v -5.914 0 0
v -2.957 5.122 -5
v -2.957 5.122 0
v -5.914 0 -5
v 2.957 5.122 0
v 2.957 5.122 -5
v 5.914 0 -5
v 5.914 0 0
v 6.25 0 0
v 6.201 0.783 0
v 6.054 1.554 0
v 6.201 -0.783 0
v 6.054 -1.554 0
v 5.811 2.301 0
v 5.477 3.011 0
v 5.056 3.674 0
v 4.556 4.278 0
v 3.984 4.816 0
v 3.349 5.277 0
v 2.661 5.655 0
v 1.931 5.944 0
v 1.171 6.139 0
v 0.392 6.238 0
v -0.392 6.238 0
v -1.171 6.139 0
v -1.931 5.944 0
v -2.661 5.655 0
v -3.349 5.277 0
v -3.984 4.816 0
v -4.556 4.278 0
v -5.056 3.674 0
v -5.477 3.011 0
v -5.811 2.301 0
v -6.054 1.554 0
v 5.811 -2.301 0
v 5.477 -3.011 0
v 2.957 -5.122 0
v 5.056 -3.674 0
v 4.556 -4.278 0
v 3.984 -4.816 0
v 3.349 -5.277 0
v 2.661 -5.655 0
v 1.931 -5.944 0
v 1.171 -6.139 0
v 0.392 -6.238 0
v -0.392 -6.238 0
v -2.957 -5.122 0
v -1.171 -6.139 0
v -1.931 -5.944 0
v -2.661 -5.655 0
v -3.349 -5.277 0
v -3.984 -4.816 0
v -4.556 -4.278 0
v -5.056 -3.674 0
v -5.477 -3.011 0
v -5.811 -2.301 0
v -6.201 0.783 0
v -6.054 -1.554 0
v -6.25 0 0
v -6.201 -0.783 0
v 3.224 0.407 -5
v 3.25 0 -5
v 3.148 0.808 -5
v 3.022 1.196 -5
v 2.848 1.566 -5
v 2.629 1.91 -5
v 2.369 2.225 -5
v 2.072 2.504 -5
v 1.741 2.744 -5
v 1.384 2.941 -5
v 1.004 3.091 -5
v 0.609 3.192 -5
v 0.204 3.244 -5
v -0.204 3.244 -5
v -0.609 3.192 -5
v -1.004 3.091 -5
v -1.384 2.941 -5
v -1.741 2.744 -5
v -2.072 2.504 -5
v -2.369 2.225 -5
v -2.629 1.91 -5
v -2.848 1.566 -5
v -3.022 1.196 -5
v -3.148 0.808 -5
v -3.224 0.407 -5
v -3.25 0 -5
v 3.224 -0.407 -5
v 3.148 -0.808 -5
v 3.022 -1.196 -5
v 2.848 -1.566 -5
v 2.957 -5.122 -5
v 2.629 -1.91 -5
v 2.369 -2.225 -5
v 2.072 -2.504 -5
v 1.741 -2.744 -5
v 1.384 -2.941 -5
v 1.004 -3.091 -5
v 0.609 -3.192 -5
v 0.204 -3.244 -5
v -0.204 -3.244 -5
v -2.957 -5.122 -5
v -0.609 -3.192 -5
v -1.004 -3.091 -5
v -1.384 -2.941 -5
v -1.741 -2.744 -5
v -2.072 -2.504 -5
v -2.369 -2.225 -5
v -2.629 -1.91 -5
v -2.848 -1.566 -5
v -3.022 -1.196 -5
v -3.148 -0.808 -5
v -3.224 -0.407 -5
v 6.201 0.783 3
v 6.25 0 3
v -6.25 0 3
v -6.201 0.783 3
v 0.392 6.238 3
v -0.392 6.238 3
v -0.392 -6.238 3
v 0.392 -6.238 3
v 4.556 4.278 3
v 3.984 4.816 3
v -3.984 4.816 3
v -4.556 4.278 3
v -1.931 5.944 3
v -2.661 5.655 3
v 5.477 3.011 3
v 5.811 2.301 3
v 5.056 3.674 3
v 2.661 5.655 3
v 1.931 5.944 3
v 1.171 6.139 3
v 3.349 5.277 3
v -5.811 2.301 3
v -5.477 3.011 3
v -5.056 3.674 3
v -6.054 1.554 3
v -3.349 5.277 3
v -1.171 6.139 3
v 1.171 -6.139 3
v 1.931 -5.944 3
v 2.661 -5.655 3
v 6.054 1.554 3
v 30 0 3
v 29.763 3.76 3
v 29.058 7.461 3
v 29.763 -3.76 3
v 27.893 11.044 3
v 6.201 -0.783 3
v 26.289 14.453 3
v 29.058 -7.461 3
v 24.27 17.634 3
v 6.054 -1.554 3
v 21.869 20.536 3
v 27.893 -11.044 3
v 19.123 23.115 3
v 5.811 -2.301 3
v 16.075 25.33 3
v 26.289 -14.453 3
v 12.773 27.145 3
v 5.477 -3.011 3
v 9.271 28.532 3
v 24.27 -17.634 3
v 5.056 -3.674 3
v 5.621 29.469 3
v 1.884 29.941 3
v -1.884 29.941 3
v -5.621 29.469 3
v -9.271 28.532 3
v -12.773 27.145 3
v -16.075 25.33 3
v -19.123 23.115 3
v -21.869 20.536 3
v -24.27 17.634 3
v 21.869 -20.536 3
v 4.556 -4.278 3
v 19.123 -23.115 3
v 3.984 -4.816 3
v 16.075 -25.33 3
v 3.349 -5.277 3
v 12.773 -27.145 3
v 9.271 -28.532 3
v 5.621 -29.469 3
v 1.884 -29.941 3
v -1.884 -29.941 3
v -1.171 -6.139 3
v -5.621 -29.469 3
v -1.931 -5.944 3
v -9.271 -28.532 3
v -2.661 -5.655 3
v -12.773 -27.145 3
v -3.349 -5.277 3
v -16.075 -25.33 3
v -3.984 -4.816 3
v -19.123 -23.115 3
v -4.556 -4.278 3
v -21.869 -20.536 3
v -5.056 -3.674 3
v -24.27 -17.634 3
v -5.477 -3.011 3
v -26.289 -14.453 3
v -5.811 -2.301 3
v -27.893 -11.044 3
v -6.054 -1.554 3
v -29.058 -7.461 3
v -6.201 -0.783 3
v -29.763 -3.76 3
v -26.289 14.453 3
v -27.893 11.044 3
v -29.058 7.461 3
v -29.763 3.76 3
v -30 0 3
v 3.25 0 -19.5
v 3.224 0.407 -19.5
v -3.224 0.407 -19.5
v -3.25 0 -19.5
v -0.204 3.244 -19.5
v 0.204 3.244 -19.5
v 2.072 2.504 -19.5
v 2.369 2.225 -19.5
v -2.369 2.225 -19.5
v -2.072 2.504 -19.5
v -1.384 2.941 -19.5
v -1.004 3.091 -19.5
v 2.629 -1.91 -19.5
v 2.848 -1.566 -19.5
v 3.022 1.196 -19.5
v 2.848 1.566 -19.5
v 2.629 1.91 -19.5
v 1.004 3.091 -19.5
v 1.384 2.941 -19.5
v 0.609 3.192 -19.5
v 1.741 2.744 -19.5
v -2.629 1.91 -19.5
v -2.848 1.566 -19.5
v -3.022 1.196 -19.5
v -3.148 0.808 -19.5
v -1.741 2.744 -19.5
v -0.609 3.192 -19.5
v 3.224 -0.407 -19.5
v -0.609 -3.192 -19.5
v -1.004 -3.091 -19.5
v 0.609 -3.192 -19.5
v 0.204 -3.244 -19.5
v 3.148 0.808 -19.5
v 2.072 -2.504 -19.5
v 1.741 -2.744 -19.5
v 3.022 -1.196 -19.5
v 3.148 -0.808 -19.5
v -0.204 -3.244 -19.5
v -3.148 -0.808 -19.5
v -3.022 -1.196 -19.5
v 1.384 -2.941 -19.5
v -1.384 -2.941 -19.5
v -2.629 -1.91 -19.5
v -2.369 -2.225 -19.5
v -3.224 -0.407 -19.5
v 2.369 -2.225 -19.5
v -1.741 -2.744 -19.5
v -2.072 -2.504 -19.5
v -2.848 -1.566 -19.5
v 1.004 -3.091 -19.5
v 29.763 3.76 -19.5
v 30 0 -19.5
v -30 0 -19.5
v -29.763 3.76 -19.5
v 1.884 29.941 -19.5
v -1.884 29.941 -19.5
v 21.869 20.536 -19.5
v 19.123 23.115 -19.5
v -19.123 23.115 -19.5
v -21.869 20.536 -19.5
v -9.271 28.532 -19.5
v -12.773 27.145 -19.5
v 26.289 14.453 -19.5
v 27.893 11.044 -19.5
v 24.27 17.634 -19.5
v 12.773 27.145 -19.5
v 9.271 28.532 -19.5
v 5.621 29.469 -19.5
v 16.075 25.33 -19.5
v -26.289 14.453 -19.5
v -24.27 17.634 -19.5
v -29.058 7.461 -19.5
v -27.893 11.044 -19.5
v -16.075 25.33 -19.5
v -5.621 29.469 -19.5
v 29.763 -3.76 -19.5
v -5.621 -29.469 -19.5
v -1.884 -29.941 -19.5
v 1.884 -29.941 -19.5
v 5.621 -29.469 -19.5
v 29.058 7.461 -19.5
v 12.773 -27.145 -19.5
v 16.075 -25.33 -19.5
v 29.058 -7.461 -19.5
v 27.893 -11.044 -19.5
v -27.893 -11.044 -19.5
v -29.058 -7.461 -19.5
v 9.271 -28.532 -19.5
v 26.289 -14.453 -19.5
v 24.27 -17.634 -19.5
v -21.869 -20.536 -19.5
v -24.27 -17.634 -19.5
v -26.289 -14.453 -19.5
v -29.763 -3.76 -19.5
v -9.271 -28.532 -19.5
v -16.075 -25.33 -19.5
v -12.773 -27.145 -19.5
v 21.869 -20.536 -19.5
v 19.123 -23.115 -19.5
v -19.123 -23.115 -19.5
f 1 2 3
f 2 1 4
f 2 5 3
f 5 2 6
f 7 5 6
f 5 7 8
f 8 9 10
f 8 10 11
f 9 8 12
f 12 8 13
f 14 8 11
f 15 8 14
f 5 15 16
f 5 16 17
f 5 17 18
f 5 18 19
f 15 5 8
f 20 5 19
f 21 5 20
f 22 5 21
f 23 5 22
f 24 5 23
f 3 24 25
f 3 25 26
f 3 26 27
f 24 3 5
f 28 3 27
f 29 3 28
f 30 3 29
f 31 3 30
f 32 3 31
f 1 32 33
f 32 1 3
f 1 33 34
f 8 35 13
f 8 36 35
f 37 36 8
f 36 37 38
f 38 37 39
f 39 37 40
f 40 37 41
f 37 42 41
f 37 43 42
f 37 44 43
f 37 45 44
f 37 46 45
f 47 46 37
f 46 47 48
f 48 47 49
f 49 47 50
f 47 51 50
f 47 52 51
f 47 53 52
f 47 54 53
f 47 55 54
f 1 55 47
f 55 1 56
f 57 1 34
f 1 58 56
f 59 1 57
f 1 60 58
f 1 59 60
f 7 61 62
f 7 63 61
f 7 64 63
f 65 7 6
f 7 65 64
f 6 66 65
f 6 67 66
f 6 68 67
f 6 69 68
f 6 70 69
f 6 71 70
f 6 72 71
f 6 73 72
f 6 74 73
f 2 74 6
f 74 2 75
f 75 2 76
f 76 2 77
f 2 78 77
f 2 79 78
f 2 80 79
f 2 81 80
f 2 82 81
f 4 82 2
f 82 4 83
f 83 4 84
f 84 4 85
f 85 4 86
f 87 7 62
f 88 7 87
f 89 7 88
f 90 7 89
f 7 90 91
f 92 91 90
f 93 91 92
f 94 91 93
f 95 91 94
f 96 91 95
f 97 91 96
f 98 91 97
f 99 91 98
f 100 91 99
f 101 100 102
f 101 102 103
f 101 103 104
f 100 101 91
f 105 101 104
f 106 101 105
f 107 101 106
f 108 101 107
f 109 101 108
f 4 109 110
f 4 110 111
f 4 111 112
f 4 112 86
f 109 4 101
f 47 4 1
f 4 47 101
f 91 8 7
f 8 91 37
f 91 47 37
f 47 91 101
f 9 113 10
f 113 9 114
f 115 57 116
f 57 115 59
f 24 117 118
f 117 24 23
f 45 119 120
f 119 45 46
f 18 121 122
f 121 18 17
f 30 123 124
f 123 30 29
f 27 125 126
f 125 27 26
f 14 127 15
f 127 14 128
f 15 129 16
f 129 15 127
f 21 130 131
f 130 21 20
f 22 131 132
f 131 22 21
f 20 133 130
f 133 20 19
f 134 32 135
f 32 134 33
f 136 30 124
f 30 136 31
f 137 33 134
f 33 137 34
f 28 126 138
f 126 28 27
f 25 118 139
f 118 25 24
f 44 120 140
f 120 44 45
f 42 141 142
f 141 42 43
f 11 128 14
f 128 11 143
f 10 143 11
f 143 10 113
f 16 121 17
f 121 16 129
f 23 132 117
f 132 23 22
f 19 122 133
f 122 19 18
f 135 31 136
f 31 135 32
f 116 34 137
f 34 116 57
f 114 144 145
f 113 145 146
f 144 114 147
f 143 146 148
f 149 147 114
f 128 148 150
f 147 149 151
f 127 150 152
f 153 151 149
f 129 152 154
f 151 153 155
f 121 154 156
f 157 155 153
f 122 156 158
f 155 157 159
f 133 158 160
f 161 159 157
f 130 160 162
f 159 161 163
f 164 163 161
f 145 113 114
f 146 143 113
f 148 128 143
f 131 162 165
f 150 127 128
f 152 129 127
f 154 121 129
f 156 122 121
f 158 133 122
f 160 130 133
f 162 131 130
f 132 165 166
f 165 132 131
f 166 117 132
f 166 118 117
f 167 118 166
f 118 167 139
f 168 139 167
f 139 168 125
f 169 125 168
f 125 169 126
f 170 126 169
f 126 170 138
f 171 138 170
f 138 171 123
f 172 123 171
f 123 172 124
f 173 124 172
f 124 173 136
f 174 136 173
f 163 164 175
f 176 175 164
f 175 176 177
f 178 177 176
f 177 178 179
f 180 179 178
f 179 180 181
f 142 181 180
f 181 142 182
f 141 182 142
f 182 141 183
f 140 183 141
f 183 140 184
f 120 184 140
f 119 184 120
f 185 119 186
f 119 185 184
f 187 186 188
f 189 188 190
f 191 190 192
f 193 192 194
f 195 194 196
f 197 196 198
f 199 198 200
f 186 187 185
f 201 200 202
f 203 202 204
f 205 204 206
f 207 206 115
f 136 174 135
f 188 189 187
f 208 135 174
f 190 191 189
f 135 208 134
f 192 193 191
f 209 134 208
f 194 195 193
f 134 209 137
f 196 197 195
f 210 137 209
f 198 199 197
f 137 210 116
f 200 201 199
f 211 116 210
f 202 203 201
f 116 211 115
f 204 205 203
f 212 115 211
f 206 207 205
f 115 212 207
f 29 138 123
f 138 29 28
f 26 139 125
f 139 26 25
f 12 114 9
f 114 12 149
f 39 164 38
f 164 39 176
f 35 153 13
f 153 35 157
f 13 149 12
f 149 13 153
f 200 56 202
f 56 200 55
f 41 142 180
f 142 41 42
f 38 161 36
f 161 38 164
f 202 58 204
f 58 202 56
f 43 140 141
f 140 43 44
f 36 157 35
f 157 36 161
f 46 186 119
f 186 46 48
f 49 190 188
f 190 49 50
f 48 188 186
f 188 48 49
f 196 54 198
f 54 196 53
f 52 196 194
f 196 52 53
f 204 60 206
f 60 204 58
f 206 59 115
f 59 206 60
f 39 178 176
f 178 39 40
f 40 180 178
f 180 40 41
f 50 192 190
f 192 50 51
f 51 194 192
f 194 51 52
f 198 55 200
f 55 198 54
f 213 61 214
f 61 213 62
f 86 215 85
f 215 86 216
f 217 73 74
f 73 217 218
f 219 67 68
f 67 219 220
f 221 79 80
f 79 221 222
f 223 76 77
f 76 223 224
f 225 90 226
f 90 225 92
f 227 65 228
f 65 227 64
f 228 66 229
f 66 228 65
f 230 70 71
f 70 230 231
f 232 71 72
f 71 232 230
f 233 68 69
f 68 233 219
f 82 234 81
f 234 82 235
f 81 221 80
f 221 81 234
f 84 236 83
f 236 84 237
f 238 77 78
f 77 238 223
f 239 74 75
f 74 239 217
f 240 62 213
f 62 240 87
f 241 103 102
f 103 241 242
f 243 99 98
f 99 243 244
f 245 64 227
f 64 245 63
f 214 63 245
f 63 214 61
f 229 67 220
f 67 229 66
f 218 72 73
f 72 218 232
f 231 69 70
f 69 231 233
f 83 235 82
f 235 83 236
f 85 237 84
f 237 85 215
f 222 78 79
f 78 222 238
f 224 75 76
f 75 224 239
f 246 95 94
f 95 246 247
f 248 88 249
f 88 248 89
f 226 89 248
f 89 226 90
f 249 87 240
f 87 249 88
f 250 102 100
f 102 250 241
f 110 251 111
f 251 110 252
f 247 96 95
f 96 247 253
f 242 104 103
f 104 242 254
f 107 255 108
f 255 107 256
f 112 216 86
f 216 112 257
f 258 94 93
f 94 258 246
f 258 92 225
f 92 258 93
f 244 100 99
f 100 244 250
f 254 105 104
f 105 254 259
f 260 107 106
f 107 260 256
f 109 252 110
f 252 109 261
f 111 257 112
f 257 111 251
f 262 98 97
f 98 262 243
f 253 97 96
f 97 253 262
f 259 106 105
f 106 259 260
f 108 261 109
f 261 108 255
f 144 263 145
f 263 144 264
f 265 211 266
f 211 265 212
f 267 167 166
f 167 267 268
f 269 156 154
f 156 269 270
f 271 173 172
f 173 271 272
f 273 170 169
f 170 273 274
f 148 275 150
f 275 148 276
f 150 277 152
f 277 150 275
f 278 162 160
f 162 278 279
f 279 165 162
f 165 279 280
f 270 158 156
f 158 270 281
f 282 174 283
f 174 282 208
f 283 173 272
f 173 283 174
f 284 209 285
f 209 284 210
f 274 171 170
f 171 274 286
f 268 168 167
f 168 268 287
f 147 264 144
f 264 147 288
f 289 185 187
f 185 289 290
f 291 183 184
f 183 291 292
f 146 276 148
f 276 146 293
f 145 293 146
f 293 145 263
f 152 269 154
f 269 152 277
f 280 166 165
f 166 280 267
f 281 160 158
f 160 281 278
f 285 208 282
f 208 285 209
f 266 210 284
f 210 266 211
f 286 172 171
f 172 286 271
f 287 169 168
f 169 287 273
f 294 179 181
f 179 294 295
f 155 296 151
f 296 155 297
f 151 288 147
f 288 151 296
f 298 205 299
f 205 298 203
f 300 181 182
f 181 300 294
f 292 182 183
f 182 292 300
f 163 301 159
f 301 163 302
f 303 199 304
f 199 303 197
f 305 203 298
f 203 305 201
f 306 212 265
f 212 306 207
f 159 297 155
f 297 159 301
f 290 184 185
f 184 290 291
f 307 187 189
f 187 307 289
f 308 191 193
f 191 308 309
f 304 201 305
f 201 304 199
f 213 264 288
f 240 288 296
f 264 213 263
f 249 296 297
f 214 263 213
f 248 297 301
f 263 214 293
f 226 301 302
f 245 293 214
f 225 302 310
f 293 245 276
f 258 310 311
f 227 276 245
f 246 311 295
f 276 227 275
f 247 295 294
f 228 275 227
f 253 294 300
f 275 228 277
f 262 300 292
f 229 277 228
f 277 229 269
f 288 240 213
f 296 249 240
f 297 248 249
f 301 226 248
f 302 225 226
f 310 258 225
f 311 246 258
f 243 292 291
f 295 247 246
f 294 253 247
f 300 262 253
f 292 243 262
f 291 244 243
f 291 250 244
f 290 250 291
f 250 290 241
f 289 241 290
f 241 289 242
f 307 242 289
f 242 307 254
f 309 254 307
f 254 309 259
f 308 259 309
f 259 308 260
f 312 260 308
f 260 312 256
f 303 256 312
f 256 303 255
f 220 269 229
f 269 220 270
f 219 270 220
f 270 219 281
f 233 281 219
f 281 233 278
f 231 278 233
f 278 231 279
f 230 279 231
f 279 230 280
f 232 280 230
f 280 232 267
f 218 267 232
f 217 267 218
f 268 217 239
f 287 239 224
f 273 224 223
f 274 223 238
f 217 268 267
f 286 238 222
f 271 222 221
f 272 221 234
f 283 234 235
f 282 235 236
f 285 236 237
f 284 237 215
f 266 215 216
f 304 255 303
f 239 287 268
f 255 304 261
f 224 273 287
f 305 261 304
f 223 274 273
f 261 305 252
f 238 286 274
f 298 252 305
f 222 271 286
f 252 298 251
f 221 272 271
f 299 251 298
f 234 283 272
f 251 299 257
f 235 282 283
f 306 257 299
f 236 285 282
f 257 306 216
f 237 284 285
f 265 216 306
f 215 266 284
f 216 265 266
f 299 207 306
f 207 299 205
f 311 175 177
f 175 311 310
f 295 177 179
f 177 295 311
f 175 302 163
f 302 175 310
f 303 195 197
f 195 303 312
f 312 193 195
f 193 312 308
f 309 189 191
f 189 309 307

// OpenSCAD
$fn = 50;

difference() {
	union() {
		translate(v = [0, 0, -19.5]) {
			cylinder(h = 22.5, r = 30.0);
		}
	}
	union() {
		translate(v = [0, 0, 0]) {
			rotate(a = [0, 0, 0]) {
				difference() {
					union() {
						translate(v = [0, 0, -5]) {
							linear_extrude(height = 5) {
								polygon(points = [[5.914249999999999, 0.0], [2.957125, 5.1218907443321156], [-2.9571249999999982, 5.1218907443321156], [-5.914249999999999, 7.242867331857232e-16], [-2.9571250000000022, -5.121890744332115], [2.9571249999999956, -5.121890744332118]]);
							}
						}
					}
					union();
				}
			}
		}
		#cylinder(h = 3, r = 6.25);
		#translate(v = [0, 0, -100.0]) {
			cylinder(h = 200, r = 3.25);
		}
	}
}
